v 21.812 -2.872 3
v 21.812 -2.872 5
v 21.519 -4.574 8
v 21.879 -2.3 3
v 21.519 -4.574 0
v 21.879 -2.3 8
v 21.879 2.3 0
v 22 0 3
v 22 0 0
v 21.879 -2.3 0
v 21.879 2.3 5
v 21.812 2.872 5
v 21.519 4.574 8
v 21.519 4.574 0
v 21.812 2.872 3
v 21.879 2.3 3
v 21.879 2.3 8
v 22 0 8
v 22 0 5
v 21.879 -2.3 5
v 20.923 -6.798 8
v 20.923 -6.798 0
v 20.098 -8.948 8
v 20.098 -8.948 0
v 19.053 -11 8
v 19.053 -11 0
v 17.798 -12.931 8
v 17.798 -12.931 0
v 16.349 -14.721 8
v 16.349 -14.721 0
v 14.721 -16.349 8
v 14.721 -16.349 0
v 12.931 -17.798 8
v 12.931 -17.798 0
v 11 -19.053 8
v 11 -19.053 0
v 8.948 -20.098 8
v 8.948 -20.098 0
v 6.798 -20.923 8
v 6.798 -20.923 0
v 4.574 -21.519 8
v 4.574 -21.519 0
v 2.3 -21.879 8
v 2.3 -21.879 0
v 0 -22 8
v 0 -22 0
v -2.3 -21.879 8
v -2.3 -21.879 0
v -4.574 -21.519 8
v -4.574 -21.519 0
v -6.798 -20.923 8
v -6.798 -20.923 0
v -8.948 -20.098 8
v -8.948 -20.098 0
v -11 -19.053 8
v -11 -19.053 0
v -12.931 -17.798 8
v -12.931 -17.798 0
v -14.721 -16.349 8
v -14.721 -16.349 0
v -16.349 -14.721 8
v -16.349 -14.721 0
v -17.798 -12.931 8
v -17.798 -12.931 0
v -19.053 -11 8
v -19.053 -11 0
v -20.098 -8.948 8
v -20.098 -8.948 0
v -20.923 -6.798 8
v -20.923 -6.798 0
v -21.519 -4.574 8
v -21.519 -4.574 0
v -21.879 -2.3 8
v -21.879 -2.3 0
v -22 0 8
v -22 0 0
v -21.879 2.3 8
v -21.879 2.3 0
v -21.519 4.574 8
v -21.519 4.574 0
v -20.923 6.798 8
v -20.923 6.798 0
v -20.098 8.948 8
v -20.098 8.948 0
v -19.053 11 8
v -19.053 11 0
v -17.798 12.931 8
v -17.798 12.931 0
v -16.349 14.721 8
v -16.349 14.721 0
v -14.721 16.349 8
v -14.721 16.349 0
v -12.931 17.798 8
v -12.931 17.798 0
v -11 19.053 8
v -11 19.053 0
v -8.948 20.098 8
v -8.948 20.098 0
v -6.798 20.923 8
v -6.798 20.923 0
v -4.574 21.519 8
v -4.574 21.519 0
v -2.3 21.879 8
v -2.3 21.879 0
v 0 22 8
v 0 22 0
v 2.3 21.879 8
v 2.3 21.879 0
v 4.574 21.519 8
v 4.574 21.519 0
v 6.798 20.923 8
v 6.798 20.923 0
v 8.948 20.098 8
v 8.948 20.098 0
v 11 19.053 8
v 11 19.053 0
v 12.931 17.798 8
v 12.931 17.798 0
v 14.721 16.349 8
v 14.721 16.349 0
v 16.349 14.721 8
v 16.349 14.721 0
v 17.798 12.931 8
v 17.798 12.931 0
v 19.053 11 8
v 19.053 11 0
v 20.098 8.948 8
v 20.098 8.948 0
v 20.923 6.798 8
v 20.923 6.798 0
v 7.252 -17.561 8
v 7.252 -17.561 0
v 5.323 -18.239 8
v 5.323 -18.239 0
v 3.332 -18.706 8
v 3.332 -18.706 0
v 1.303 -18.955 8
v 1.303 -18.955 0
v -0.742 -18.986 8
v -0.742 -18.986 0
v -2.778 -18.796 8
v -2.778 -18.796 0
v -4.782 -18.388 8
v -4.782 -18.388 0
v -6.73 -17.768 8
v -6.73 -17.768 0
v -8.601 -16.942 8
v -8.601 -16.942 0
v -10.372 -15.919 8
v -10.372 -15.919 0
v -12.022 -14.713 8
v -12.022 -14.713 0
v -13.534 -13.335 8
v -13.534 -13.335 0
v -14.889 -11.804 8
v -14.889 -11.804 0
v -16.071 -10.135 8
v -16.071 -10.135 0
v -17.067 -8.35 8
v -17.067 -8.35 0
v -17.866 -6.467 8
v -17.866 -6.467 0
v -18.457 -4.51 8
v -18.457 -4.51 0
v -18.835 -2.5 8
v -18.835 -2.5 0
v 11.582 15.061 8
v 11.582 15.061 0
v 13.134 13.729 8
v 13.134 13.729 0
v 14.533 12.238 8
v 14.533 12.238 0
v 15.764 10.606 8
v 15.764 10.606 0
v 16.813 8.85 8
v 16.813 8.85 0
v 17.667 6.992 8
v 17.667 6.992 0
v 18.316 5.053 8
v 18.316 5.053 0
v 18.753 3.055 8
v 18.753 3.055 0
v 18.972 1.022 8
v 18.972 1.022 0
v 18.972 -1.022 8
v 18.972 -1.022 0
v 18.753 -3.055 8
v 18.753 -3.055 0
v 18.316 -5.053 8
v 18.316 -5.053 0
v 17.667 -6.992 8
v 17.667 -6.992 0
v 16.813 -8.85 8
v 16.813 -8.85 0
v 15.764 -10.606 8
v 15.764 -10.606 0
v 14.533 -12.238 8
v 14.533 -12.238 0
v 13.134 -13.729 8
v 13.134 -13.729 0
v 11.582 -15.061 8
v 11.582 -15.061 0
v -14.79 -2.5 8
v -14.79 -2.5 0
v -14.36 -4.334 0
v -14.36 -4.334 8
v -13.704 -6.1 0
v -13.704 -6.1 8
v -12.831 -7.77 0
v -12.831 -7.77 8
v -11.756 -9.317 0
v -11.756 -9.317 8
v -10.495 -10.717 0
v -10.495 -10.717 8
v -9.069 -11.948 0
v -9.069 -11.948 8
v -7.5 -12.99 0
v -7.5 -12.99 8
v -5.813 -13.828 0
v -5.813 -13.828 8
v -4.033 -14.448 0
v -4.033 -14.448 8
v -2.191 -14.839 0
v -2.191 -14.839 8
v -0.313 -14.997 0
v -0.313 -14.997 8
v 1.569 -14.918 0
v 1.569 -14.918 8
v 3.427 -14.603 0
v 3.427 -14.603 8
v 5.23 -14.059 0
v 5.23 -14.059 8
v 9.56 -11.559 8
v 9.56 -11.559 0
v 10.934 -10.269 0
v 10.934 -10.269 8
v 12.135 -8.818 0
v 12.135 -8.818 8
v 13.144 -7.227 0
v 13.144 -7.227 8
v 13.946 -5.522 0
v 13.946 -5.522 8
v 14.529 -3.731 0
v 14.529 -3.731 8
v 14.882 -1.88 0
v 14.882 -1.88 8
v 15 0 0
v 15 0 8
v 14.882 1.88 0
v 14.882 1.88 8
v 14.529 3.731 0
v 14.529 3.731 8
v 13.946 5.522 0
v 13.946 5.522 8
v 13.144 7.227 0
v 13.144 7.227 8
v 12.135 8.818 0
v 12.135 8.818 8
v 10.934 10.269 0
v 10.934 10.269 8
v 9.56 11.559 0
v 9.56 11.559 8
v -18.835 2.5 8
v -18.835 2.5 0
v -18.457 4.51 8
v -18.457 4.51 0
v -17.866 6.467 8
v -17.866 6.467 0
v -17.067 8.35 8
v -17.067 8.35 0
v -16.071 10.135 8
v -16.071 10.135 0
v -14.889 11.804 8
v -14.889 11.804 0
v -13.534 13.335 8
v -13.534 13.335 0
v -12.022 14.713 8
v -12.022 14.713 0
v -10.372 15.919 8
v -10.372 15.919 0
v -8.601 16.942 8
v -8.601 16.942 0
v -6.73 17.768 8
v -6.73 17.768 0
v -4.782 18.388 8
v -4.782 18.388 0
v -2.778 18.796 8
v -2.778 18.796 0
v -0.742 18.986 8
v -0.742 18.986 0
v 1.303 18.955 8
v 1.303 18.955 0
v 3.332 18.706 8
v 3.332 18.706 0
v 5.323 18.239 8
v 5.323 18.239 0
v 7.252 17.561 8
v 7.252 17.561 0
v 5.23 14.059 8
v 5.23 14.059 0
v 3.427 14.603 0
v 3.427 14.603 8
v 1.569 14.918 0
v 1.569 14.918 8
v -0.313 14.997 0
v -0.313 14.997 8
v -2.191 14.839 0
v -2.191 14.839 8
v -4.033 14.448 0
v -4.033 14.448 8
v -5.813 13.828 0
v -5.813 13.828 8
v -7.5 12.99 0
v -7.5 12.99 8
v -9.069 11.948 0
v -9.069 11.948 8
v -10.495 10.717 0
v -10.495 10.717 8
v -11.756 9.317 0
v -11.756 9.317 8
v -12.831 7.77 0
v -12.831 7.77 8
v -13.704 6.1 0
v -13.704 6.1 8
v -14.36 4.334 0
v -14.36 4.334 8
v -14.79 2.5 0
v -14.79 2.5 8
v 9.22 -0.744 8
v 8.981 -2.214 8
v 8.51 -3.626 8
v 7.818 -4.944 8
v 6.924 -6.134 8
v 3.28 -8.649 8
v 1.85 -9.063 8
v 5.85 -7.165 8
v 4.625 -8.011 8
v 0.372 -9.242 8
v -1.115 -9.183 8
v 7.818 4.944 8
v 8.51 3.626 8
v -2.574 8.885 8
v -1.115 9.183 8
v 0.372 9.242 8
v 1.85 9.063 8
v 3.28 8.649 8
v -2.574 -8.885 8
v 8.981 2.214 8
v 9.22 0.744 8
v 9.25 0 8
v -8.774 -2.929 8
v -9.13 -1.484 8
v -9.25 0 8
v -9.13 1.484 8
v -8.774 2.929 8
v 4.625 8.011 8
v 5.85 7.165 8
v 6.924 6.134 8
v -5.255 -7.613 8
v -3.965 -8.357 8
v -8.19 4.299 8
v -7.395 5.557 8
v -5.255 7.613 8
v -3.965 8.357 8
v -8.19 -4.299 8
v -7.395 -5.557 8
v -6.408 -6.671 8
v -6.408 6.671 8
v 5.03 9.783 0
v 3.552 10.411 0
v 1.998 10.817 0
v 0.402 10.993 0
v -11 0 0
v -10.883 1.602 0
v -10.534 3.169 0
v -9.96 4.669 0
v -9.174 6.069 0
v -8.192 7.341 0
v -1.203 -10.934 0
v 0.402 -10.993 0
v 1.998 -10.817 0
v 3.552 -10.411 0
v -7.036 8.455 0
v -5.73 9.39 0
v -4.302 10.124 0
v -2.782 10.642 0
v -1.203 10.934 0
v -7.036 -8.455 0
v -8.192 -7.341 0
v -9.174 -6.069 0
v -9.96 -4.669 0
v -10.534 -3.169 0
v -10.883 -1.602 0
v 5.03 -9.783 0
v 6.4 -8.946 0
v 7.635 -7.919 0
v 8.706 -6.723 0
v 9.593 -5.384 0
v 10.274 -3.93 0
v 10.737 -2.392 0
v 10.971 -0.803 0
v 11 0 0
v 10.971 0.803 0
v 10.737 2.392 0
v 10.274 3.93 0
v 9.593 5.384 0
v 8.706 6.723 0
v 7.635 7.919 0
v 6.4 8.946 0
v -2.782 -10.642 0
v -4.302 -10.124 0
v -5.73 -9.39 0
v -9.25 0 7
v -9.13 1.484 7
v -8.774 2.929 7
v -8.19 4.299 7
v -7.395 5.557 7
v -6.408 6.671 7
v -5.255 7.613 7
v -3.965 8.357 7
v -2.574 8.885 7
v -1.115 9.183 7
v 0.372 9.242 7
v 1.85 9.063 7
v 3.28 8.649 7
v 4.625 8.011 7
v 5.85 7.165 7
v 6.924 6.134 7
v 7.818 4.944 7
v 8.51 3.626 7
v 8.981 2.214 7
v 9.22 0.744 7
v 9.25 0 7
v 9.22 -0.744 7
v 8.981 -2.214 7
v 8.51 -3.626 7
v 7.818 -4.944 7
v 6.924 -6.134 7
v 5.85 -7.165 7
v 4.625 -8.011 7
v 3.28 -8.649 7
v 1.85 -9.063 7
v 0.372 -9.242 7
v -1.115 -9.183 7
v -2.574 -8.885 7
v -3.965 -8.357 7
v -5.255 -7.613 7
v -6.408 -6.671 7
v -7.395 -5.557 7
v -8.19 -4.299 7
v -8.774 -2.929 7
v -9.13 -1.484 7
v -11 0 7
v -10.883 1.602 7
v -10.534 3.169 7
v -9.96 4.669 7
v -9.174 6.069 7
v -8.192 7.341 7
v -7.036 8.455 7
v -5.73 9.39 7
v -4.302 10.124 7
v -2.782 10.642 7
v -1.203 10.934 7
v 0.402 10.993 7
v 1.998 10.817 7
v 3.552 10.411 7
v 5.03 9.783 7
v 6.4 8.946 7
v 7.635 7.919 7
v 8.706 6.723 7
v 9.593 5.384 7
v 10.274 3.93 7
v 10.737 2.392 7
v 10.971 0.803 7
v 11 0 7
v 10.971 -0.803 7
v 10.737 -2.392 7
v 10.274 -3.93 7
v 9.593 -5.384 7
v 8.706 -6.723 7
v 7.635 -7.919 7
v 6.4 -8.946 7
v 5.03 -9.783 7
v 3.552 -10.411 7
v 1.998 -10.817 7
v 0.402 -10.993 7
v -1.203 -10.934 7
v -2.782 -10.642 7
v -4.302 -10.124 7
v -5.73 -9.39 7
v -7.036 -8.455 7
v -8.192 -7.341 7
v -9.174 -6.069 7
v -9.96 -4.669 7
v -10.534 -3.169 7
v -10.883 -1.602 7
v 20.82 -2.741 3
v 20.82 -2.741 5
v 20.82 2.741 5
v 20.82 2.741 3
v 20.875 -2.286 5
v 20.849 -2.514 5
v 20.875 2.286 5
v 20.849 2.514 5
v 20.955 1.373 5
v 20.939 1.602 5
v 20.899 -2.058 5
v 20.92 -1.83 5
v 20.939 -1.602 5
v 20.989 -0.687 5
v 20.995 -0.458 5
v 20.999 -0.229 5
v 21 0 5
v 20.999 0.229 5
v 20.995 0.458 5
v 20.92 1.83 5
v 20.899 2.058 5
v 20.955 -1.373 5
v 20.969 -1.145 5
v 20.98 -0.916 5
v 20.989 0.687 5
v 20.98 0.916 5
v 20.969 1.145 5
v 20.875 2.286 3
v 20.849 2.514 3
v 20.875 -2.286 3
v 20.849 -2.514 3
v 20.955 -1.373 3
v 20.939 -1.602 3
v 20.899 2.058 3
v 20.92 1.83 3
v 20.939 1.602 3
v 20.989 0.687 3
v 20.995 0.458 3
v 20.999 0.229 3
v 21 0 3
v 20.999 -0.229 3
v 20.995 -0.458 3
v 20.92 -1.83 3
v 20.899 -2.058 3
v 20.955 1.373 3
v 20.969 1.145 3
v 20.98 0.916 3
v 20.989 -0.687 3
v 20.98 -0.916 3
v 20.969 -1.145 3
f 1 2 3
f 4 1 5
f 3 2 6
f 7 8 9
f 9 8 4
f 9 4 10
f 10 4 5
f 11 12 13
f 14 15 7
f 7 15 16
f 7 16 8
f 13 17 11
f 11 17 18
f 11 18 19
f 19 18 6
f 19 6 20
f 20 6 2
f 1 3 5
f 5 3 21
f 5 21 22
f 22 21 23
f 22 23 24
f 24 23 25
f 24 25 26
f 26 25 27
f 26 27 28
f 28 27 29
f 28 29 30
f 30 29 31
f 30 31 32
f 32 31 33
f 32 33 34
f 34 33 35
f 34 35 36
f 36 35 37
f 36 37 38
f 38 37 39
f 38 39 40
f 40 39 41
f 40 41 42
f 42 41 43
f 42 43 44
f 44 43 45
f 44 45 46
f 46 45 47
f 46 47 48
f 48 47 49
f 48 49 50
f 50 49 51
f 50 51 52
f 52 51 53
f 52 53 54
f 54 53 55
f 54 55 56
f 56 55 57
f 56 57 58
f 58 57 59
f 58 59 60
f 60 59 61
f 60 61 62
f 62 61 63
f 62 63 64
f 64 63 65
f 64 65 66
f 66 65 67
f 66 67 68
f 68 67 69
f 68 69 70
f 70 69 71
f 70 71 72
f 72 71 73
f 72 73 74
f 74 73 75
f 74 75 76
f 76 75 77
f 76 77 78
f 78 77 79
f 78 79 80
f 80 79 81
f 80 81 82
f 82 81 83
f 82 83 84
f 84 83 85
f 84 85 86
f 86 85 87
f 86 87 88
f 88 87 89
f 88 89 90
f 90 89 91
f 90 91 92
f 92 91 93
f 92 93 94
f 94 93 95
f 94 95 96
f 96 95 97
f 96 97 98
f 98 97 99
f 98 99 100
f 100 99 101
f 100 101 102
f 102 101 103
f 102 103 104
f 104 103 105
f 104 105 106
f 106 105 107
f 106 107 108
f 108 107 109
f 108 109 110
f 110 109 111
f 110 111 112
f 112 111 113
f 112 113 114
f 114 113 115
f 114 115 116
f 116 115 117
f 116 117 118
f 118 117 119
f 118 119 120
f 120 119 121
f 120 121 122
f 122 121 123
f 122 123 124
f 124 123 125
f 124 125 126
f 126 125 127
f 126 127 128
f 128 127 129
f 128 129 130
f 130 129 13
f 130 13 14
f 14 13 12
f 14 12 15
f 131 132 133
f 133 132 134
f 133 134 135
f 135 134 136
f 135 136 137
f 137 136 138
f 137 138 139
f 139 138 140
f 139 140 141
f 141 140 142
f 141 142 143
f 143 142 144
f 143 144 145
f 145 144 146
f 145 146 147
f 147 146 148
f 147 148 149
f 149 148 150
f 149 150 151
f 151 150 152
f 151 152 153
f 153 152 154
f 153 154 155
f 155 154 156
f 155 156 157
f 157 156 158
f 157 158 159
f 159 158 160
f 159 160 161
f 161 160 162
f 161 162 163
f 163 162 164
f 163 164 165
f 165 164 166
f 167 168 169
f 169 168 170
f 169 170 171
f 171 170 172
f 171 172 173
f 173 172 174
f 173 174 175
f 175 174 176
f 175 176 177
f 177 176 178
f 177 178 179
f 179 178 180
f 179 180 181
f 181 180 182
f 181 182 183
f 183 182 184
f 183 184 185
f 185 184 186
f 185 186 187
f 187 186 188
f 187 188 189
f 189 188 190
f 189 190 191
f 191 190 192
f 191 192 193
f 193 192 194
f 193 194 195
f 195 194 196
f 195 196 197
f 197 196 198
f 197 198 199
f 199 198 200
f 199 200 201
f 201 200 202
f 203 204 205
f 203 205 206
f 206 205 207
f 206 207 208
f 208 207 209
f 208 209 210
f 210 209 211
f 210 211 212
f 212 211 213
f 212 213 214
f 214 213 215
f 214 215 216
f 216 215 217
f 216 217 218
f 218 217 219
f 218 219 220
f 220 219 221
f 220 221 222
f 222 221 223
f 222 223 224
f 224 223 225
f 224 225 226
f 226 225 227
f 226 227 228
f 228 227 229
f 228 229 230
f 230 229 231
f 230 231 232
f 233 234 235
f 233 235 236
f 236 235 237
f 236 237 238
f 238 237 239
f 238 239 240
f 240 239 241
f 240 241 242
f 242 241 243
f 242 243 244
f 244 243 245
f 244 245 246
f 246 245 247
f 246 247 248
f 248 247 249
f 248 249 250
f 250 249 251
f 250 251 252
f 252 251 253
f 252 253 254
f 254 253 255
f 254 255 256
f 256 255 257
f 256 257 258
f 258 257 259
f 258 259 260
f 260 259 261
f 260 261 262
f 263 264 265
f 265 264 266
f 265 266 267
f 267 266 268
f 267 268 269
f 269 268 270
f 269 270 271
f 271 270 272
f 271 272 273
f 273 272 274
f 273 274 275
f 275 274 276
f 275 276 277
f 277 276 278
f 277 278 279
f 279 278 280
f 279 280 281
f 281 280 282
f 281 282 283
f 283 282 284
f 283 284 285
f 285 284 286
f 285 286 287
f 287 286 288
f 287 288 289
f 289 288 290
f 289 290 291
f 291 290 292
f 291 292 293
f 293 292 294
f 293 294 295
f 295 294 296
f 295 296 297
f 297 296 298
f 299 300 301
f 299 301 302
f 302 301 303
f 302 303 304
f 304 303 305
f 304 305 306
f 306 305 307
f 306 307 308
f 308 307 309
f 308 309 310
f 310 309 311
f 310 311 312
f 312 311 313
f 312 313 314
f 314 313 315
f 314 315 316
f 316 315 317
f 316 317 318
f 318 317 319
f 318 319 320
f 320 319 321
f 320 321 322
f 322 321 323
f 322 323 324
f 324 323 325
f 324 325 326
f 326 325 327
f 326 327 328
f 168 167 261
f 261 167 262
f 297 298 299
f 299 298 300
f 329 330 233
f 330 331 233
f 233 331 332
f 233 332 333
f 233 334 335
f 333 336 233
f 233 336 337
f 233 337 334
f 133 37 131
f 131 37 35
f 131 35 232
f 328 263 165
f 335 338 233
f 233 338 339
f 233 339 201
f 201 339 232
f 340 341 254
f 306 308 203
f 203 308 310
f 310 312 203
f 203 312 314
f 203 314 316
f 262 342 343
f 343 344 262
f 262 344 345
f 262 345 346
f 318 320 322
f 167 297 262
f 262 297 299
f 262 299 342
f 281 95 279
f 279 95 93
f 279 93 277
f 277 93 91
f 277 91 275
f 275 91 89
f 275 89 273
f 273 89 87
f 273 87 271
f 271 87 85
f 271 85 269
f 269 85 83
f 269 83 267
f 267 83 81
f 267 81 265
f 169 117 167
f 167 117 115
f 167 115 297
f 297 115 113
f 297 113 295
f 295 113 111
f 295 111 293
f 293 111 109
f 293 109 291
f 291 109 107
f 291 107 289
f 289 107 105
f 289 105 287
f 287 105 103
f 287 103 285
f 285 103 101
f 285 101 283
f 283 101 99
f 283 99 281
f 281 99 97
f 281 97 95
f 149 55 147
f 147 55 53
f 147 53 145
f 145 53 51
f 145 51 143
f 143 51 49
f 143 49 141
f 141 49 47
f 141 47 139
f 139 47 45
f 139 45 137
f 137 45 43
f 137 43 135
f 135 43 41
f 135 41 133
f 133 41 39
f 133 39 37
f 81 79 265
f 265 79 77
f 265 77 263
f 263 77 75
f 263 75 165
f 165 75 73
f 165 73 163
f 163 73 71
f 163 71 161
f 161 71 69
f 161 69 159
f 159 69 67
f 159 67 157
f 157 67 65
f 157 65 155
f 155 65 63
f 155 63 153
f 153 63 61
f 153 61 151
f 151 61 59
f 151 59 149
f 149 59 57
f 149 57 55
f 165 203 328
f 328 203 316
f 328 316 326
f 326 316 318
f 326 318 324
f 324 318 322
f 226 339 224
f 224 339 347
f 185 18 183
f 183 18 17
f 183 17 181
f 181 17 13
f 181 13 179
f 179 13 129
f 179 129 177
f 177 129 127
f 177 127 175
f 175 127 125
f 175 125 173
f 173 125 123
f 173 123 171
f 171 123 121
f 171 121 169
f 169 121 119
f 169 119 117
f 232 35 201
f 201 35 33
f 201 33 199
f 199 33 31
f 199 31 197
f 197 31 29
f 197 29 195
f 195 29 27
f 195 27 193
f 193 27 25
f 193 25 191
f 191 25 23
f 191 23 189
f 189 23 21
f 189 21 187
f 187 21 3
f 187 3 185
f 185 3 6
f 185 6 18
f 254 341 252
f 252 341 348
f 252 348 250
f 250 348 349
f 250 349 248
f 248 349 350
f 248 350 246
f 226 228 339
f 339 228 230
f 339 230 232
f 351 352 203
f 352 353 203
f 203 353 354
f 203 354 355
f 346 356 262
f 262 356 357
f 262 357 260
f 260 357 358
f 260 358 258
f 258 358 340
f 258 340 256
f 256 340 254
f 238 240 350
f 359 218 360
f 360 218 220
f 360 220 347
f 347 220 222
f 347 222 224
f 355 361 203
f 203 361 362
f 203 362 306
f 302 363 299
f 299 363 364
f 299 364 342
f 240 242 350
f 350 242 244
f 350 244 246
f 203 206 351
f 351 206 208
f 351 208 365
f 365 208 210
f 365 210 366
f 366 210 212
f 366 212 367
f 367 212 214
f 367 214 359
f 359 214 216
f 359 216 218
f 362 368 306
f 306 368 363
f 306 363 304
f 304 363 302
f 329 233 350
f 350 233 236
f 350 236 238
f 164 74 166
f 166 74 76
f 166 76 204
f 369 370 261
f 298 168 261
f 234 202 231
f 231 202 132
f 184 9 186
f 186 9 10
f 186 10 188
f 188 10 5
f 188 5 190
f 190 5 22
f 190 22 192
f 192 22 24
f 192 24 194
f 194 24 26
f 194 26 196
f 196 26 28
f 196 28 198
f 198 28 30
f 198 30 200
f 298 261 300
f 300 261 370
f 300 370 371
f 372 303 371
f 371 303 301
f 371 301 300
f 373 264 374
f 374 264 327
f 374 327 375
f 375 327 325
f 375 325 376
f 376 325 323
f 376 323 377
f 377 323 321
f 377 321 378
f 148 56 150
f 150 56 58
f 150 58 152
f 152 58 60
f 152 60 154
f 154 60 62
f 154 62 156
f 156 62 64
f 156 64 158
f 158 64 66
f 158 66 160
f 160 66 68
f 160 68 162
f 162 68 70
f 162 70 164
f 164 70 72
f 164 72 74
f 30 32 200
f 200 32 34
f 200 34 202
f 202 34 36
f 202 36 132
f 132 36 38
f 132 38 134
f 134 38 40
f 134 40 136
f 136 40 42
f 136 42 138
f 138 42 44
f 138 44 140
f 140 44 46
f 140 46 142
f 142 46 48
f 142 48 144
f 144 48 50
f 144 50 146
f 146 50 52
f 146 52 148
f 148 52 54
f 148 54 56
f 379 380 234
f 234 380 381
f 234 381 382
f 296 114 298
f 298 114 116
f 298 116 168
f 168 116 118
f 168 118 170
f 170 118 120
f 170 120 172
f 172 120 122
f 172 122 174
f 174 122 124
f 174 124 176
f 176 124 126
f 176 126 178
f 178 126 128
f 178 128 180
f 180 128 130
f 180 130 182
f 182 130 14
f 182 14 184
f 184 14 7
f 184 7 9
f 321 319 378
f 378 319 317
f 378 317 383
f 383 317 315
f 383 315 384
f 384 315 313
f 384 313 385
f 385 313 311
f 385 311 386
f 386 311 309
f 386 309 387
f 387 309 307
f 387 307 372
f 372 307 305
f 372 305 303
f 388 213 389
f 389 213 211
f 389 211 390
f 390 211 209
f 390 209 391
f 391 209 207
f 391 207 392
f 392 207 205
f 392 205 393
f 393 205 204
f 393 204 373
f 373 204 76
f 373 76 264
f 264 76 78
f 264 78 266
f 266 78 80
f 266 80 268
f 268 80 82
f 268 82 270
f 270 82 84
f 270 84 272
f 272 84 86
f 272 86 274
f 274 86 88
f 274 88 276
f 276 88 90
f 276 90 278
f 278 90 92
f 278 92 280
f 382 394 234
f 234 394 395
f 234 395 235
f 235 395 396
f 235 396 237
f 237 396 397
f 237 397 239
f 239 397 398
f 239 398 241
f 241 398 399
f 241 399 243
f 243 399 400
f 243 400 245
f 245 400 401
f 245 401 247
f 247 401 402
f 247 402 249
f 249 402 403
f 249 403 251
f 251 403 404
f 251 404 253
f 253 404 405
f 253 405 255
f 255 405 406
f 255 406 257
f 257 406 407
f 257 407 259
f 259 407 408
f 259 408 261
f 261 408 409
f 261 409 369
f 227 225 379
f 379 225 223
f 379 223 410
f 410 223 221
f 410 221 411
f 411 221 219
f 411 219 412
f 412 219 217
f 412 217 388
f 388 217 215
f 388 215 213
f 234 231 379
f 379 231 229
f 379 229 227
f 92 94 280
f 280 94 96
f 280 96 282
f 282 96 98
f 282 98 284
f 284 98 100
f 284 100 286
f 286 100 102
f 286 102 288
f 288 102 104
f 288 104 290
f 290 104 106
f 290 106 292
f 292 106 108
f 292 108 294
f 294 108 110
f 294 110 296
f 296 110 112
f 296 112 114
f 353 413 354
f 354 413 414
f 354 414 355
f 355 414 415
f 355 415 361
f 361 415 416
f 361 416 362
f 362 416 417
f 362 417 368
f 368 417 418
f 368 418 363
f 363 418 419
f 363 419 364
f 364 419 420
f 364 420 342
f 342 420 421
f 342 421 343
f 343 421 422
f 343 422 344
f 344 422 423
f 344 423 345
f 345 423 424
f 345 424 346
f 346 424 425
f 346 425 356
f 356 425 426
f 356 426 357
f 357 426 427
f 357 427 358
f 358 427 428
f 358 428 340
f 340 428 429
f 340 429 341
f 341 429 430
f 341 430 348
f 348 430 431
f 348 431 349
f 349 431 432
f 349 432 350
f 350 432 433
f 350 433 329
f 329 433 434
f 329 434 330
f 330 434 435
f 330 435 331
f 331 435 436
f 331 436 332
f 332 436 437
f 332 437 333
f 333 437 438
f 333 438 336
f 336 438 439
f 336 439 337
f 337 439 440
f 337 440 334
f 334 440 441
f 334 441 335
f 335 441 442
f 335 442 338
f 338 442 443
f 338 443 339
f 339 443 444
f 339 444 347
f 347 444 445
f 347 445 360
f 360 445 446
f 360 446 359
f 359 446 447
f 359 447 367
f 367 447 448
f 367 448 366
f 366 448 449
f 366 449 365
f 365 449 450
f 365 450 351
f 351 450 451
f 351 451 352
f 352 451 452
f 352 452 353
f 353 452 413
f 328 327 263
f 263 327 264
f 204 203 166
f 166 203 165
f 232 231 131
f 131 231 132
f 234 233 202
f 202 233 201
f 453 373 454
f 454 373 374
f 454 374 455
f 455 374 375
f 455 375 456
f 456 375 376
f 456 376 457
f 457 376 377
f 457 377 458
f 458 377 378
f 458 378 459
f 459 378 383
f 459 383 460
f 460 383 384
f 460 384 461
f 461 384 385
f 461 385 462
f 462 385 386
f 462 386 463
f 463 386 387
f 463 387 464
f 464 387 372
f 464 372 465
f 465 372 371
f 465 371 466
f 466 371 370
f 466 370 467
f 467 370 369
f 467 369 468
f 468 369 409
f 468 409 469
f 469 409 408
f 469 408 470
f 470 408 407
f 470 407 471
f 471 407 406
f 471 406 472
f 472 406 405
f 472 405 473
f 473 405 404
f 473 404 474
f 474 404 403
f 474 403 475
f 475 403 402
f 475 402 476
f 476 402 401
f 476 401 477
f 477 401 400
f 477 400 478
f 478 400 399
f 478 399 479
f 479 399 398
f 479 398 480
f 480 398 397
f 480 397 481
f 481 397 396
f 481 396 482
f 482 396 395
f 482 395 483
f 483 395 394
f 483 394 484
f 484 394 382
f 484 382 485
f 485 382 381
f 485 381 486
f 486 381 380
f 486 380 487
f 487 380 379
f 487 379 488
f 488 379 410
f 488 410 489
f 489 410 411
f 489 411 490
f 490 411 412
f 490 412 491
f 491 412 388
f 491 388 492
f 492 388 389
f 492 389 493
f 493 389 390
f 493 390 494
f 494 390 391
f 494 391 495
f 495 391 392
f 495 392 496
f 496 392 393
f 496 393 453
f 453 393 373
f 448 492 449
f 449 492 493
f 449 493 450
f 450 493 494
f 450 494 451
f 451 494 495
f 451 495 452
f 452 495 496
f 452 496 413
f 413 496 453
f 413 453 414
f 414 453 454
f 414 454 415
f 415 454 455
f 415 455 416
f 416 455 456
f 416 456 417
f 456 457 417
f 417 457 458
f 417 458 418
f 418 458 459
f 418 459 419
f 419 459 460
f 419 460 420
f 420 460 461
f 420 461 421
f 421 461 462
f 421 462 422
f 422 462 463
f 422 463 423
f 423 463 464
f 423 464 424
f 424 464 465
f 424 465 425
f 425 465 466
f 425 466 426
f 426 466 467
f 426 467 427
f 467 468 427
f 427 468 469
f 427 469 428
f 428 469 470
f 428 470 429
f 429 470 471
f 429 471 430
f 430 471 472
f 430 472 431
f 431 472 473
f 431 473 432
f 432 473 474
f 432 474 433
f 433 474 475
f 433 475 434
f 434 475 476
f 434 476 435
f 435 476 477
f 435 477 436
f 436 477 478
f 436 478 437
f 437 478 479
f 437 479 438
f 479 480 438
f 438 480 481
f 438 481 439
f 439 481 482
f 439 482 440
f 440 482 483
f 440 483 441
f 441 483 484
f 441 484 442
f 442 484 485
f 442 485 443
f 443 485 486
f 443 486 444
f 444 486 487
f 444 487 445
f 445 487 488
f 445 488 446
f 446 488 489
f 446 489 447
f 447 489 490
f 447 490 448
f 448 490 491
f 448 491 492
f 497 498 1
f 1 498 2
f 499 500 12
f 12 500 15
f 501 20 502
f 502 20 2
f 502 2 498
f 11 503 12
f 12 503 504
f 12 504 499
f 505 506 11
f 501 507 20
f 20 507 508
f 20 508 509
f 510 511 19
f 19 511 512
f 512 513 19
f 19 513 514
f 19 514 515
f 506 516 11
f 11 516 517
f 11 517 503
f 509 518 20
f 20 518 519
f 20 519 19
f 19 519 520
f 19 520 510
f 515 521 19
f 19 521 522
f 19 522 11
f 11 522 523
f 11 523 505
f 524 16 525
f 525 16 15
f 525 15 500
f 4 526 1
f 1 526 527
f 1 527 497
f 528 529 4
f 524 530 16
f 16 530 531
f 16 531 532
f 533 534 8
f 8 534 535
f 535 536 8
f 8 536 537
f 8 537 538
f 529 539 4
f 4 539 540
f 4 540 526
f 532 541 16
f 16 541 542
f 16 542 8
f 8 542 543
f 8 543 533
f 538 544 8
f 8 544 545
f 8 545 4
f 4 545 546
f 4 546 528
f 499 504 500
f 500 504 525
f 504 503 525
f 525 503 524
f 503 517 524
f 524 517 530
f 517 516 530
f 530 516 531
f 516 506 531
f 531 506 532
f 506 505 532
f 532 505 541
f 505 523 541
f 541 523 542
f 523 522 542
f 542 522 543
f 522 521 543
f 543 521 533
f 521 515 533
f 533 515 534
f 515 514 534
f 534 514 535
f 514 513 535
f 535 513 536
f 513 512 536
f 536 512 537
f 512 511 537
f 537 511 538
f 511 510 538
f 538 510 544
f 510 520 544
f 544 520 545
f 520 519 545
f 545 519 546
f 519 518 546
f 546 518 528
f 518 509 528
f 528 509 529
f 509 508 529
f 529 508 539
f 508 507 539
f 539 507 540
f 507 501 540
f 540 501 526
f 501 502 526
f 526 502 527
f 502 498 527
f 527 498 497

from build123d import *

# Parameters (mm, degrees)
SKETCH1_R          = 22
SKETCH1_R_2        = 19
OUTER_RING_DEPTH   = 8
SKETCH2_R          = 15
SKETCH2_R_2        = 9.25
HUB_DEPTH          = 8
SKETCH3_W          = 6
SKETCH3_H          = 5
SPOKES_DEPTH       = 8
SKETCH4_R          = 11
BEARING_SEAT_DEPTH = 7
SCREW_GROOVE_DEPTH = 2


with BuildPart() as part:
    # Sketch1 → Outer_ring (new body)
    with BuildSketch(Plane.XY):
        Circle(SKETCH1_R)
        Circle(SKETCH1_R_2, mode=Mode.SUBTRACT)
    extrude(amount=OUTER_RING_DEPTH)



with BuildPart() as body_2:
    # Sketch2 → Hub (new body)
    with BuildSketch(Plane.XY):
        Circle(SKETCH2_R)
        Circle(SKETCH2_R_2, mode=Mode.SUBTRACT)
    extrude(amount=HUB_DEPTH)


with BuildPart() as part_1:
    add(part.part)

    add(body_2.part)  # Spokes merges body 2
    # Sketch3 → Spokes (add)
    with BuildSketch(Plane.XY):
        Polygon((9.165063509, 10.874355653), (12.165063509, 16.070508076), (7.834936491, 18.570508076), (4.834936491, 13.374355653), align=None)
        with Locations((-17, 0)):
            Rectangle(SKETCH3_W, SKETCH3_H)
        Polygon((4.834936491, -13.374355653), (7.834936491, -18.570508076), (12.165063509, -16.070508076), (9.165063509, -10.874355653), align=None)
    extrude(amount=SPOKES_DEPTH)

    # Sketch4 → Bearing_seat (cut)
    with BuildSketch(Plane.XY):
        Circle(SKETCH4_R)
    extrude(amount=BEARING_SEAT_DEPTH, mode=Mode.SUBTRACT)

    # Sketch5 → Screw_groove (cut)
    with BuildSketch(Plane.XY.offset(3)):
        Polygon((20.820342089, -2.741050037), (20.849003007, -2.513776761), (20.875183103, -2.286204372), (20.89887926, -2.058359947), (20.92008866, -1.830270598), (20.938808778, -1.601963465), (20.955037388, -1.373465714), (20.968772558, -1.144804534), (20.980012653, -0.916007135), (20.988756337, -0.687100739), (20.995002569, -0.458112586), (20.998750605, -0.229069921), (21, 0), (20.998750605, 0.229069921), (20.995002569, 0.458112586), (20.988756337, 0.687100739), (20.980012653, 0.916007135), (20.968772558, 1.144804534), (20.955037388, 1.373465714), (20.938808778, 1.601963465), (20.92008866, 1.830270598), (20.89887926, 2.058359947), (20.875183103, 2.286204372), (20.849003007, 2.513776761), (20.820342089, 2.741050037), (23.298954242, 3.067365517), (23.298954242, -3.067365517), align=None)
    extrude(amount=SCREW_GROOVE_DEPTH, mode=Mode.SUBTRACT)


solid = part_1.part
